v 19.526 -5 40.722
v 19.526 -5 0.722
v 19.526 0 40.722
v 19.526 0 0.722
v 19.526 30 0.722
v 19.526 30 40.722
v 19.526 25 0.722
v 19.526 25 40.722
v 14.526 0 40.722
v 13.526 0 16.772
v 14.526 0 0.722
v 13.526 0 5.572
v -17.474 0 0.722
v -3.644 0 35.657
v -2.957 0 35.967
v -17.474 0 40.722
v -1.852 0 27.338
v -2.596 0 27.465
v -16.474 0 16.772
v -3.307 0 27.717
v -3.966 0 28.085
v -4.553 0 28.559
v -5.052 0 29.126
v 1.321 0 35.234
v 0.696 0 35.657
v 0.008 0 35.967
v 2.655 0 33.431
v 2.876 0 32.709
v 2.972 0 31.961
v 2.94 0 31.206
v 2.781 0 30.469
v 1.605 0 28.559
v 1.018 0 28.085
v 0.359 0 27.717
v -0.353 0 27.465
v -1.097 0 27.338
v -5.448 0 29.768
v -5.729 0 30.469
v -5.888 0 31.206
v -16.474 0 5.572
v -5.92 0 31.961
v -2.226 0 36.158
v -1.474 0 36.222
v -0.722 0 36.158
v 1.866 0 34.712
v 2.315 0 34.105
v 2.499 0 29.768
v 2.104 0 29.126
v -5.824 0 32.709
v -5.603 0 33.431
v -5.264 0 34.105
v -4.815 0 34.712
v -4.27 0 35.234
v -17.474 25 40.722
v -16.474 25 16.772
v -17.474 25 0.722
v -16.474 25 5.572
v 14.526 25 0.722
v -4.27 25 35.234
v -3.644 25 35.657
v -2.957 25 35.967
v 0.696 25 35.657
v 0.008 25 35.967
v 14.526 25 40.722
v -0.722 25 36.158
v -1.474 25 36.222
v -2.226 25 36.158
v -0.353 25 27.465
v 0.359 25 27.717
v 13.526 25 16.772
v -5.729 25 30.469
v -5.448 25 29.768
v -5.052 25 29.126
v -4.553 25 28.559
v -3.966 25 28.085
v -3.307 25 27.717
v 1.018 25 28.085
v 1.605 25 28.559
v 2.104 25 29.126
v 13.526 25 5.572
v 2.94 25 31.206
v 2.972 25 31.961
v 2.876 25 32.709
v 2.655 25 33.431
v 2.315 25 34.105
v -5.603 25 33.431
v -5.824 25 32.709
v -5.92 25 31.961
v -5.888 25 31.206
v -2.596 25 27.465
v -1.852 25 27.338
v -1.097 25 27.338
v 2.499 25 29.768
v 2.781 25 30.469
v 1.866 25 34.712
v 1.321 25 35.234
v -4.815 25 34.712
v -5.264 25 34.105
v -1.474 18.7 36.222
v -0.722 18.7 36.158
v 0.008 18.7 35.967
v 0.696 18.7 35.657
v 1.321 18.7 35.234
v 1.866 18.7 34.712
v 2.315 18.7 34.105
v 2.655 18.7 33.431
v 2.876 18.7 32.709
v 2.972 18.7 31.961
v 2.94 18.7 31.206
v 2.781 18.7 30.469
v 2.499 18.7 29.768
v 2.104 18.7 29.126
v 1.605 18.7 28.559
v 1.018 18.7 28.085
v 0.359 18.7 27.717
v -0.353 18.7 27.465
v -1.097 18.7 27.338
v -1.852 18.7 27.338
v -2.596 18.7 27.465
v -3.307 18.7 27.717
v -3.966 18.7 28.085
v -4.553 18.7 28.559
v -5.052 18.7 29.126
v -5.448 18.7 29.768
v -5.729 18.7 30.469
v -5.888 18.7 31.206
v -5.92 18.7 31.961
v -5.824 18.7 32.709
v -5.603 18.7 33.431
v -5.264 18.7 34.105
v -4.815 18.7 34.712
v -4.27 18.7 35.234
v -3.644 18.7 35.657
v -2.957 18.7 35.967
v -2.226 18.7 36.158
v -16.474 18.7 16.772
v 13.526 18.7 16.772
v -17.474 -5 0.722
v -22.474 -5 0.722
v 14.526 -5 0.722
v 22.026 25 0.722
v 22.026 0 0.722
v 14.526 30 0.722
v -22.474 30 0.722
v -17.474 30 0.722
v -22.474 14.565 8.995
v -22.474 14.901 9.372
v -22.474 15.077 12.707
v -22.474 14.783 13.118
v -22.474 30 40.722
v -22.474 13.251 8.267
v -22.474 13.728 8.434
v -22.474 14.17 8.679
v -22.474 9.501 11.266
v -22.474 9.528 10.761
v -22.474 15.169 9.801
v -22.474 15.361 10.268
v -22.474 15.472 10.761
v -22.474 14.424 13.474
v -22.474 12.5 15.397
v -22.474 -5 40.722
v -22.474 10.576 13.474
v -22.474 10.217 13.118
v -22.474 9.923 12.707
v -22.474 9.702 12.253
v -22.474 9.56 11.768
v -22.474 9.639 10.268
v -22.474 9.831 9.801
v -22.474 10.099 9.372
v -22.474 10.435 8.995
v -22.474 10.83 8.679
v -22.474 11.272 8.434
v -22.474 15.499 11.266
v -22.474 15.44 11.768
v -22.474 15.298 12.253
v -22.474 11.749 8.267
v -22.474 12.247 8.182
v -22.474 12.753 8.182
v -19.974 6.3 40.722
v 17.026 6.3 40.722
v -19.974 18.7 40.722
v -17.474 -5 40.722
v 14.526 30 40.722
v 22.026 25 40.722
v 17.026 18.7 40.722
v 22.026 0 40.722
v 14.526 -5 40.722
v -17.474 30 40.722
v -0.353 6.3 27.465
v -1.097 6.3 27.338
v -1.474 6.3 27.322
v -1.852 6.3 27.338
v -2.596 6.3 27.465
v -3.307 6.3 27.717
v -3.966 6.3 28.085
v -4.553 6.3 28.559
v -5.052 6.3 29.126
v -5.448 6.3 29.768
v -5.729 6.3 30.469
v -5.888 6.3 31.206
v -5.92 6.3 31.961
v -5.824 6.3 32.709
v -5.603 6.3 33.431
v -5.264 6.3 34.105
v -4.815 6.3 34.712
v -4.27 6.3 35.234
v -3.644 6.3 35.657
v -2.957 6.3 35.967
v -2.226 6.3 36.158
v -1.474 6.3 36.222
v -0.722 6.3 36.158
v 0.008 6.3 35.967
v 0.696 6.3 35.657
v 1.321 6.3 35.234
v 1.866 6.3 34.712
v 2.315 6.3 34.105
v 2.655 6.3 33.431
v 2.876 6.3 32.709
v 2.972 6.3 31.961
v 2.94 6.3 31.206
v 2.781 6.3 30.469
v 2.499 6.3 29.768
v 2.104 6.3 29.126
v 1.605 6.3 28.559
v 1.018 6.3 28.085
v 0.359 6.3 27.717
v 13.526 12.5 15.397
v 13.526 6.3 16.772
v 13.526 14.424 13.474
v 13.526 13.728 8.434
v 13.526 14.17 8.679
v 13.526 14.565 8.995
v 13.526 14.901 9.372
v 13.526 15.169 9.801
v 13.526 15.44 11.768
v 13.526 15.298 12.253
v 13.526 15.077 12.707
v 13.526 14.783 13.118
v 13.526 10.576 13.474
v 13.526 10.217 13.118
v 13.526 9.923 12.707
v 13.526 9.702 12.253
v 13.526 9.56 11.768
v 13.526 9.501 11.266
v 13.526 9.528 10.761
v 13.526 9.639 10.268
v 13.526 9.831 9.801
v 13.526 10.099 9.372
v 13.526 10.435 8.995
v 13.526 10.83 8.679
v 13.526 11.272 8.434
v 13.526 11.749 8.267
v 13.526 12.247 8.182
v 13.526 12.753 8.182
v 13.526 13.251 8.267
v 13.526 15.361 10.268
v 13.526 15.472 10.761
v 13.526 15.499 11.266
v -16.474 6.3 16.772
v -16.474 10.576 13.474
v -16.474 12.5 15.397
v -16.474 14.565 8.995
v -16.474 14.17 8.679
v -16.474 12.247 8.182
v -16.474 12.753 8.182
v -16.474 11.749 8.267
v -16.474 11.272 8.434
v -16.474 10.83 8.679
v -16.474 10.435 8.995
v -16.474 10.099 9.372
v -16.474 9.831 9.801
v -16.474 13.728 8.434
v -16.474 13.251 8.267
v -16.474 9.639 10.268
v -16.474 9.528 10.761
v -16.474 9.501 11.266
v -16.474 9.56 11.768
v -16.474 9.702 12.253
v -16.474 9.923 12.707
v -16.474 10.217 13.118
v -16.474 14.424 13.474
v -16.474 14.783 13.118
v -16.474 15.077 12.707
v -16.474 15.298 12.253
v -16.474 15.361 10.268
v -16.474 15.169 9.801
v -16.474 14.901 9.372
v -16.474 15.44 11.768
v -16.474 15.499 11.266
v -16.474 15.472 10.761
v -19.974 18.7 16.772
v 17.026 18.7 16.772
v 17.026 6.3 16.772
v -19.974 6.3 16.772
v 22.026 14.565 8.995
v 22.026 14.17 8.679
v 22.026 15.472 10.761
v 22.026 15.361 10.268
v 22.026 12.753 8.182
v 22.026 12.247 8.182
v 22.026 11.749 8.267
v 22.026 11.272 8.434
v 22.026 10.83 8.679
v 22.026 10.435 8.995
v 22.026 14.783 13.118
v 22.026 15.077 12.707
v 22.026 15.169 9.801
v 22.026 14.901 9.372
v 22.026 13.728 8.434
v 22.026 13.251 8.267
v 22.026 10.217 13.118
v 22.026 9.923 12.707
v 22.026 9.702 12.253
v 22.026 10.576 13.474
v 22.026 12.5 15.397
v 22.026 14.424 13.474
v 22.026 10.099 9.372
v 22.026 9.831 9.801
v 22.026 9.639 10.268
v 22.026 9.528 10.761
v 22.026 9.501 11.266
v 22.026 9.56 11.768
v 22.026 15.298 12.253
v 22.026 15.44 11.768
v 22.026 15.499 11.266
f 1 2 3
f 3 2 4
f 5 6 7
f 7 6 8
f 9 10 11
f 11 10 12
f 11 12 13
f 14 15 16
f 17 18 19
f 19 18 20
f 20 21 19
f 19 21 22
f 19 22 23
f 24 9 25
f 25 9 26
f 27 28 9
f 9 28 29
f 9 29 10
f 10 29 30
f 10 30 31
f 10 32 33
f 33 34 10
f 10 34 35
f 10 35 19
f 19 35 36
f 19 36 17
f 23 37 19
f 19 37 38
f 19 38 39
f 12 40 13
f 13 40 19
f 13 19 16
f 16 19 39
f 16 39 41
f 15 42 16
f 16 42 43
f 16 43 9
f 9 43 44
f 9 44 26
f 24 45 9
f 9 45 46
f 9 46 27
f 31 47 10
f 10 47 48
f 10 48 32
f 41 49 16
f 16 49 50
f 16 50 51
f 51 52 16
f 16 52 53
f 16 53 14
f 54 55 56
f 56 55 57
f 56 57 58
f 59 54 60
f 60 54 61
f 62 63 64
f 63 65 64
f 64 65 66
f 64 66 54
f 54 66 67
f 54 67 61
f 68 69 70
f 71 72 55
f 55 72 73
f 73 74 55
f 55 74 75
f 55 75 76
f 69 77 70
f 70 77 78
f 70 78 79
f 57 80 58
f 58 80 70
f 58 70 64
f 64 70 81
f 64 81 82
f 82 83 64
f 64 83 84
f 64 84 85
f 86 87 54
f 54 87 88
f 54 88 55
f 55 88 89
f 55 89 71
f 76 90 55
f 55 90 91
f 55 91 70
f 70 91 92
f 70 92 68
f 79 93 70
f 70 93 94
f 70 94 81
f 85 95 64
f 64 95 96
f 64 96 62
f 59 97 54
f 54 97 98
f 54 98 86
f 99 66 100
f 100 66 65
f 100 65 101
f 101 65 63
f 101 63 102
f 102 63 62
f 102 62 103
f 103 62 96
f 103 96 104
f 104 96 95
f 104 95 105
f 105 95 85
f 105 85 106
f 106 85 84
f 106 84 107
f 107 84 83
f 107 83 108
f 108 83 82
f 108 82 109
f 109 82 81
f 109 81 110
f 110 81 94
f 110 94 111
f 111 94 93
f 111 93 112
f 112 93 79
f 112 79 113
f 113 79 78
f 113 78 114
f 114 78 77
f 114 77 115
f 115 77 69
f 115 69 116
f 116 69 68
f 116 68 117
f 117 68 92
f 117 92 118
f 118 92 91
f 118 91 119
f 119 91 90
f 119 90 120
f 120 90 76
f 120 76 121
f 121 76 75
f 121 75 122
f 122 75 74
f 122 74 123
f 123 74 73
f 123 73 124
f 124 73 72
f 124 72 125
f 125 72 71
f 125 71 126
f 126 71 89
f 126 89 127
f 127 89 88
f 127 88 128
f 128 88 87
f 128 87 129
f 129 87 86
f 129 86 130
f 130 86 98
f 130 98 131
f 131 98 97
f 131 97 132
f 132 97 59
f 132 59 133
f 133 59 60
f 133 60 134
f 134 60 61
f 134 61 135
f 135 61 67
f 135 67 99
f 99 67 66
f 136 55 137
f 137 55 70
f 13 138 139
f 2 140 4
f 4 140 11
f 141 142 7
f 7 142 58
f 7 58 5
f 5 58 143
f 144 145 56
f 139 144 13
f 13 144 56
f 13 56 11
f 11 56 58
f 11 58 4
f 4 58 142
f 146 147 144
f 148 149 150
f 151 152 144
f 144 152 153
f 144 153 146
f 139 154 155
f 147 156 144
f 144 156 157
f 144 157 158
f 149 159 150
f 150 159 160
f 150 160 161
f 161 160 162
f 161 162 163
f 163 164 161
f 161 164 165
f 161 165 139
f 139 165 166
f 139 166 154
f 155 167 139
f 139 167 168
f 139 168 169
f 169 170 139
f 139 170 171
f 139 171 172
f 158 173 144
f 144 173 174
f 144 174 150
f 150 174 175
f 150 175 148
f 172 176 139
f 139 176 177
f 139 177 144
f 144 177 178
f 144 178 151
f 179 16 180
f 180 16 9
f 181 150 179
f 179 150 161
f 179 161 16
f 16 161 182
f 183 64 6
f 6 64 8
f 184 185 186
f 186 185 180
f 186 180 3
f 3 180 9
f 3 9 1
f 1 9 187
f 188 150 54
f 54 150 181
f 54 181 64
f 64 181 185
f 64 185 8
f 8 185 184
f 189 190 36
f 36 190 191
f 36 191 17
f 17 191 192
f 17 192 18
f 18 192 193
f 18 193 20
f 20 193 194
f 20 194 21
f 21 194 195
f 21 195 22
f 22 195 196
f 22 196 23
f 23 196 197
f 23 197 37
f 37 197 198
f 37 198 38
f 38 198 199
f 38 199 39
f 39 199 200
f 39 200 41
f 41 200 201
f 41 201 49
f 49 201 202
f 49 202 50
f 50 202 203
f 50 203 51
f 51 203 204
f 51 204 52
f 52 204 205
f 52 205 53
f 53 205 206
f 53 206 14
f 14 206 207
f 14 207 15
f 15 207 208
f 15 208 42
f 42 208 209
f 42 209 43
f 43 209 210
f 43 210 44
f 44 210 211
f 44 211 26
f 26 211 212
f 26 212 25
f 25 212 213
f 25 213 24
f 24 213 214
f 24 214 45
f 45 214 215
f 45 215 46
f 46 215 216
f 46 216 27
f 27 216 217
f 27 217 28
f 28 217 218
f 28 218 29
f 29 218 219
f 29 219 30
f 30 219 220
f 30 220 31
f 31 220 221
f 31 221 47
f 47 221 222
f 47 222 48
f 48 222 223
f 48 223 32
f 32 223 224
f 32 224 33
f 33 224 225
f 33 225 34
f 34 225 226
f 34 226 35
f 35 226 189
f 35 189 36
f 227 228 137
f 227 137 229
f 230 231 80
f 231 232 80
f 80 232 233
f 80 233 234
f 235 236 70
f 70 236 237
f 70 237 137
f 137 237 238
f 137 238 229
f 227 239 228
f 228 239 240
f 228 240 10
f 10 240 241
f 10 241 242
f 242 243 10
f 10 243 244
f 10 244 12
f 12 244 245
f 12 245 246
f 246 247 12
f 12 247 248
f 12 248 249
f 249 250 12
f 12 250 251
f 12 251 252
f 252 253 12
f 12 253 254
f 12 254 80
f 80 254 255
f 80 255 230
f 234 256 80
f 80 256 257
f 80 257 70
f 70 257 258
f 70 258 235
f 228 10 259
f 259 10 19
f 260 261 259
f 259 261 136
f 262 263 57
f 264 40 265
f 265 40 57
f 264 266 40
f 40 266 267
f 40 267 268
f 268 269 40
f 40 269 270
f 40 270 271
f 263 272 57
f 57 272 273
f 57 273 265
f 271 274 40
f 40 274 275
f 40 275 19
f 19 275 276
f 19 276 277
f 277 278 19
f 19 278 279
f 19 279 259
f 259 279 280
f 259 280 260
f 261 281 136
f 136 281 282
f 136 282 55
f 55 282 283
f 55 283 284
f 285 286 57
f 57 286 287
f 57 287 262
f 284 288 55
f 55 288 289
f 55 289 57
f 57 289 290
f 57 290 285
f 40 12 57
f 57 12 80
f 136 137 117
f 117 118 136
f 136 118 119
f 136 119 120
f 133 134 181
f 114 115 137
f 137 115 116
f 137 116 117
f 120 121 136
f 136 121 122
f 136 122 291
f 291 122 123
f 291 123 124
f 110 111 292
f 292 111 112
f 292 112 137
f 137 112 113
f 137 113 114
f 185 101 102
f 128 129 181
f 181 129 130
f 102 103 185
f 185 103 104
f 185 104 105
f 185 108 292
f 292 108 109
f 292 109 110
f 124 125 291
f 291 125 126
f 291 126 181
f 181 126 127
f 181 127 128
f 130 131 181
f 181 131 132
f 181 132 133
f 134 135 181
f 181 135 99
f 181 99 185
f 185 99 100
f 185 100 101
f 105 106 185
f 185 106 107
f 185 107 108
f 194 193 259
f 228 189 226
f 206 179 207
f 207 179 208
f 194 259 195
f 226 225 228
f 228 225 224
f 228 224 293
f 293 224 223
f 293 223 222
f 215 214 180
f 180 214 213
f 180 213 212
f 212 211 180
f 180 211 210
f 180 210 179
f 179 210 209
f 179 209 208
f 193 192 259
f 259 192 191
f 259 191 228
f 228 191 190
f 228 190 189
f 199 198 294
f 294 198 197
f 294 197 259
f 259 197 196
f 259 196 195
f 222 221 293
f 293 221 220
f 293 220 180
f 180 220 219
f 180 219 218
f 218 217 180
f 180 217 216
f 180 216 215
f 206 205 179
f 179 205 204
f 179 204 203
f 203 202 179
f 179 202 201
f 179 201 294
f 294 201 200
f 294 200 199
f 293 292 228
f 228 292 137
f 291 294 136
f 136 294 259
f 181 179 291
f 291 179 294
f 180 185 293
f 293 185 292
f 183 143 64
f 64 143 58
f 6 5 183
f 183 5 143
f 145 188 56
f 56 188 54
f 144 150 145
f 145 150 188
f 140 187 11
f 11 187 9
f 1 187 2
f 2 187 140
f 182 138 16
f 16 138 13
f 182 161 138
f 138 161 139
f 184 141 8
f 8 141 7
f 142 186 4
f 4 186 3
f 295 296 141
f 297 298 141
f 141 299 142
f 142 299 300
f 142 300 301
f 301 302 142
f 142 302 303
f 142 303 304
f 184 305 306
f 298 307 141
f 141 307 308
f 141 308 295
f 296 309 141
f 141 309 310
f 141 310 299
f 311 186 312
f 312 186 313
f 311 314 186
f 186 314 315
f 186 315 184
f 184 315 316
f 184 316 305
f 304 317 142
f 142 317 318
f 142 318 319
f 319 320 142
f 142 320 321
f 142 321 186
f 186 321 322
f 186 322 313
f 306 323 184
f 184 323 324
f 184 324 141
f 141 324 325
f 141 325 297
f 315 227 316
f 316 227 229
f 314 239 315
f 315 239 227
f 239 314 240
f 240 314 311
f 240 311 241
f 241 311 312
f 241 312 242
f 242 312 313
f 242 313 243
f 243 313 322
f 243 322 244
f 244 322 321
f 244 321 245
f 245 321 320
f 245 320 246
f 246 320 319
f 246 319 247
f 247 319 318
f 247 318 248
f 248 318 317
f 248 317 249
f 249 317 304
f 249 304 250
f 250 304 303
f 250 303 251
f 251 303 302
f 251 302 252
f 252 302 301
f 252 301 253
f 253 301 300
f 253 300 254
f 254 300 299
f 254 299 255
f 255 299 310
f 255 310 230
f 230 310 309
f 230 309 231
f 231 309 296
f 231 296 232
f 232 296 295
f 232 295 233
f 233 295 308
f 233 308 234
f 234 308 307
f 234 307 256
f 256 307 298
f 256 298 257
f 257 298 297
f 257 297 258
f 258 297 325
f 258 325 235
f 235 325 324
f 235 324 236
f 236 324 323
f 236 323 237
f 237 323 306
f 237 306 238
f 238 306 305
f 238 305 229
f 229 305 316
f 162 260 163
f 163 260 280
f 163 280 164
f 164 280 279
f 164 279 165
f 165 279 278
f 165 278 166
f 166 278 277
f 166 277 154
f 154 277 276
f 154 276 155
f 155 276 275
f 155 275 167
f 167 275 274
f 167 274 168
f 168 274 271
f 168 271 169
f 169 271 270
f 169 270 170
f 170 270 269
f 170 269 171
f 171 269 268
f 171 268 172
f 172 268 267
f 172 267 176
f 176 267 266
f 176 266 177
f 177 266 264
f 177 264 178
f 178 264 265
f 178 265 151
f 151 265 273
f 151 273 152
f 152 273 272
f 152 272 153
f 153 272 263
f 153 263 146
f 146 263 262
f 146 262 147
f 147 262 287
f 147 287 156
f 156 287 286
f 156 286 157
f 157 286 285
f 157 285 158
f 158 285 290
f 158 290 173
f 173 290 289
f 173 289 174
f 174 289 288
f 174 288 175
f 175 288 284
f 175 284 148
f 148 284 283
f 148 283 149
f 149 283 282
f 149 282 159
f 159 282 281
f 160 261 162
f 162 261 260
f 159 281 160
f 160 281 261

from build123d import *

# Parameters (mm, degrees)
SKETCH1_W               = 42
SKETCH1_H               = 40
BOSS_EXTRUDE1_DEPTH     = 25
SKETCH2_R               = 4.45
SKETCH2_W               = 30
SKETCH2_H               = 11.2
CUT_EXTRUDE1_DEPTH      = 25
SKETCH5_W               = 37
SKETCH5_H               = 12.4
CUT_EXTRUDE3_DEPTH      = 23.95
SKETCH7_W               = 5
SKETCH7_H               = 40
BOSS_EXTRUDE2_DEPTH     = 5
SKETCH8_W               = 5
SKETCH8_H               = 40
BOSS_EXTRUDE3_DEPTH     = 5
SKETCH10_W              = 40
SKETCH10_H              = 25
BOSS_EXTRUDE4_DEPTH     = 2.5
CUT_EXTRUDE2_DEPTH      = 66.743841816
CUT_EXTRUDE2_DEPTH_BACK = 66.743841816


with BuildPart() as part:
    # Sketch1 → Boss-Extrude1 (new body)
    with BuildSketch(Plane(origin=(0, 0, 0), x_dir=(-1, 0, 0), z_dir=(0, 1, 0))):
        with Locations((1.474226804, 20.721649485)):
            Rectangle(SKETCH1_W, SKETCH1_H)
    extrude(amount=BOSS_EXTRUDE1_DEPTH)

    # Sketch2 → Cut-Extrude1 (cut)
    with BuildSketch(Plane(origin=(0, 25, 0), x_dir=(-1, 0, 0), z_dir=(0, 1, 0))):
        with Locations(Location((1.474226804, 31.771649485, 0), (0, 0, 90))):
            Circle(SKETCH2_R)
        with Locations((1.474226804, 11.171649485)):
            Rectangle(SKETCH2_W, SKETCH2_H)
    extrude(amount=-CUT_EXTRUDE1_DEPTH, mode=Mode.SUBTRACT)

    # Sketch5 → Cut-Extrude3 (cut)
    with BuildSketch(Plane.XY.offset(40.721649485)):
        with Locations((-1.474226804, 12.5)):
            Rectangle(SKETCH5_W, SKETCH5_H)
    extrude(amount=-CUT_EXTRUDE3_DEPTH, mode=Mode.SUBTRACT)

    # Sketch7 → Boss-Extrude2 (add)
    with BuildSketch(Plane(origin=(0, 25, 0), x_dir=(-1, 0, 0), z_dir=(0, 1, 0))):
        with Locations((19.974226804, 20.721649485)):
            Rectangle(SKETCH7_W, SKETCH7_H)
        with Locations((-17.025773196, 20.721649485)):
            Rectangle(SKETCH7_W, SKETCH7_H)
    extrude(amount=BOSS_EXTRUDE2_DEPTH)

    # Sketch8 → Boss-Extrude3 (add)
    with BuildSketch(Plane.XZ):
        with Locations((-19.974226804, 20.721649485)):
            Rectangle(SKETCH8_W, SKETCH8_H)
        with Locations((17.025773196, 20.721649485)):
            Rectangle(SKETCH8_W, SKETCH8_H)
    extrude(amount=BOSS_EXTRUDE3_DEPTH)

    # Sketch10 → Boss-Extrude4 (add)
    with BuildSketch(Plane(origin=(19.525773196, 0, 0), x_dir=(0, 0, -1), z_dir=(1, 0, 0))):
        with Locations((-20.721649485, 12.5)):
            Rectangle(SKETCH10_W, SKETCH10_H)
    extrude(amount=BOSS_EXTRUDE4_DEPTH)

    # Sketch3 → Cut-Extrude2 (cut, two sides: drawn at the far end of the back side and taken through both)
    with BuildSketch(Plane.YZ.offset(19.525773196).offset(-CUT_EXTRUDE2_DEPTH_BACK)):
        with BuildLine():
            Line((14.423560576, 13.473803847), (12.5, 15.397364423))
            Line((12.5, 15.397364423), (10.576439424, 13.473803847))
            ThreePointArc((10.576439424, 13.473803847), (12.5, 8.171649485), (14.423560576, 13.473803847))
        make_face()
    extrude(amount=CUT_EXTRUDE2_DEPTH + CUT_EXTRUDE2_DEPTH_BACK, mode=Mode.SUBTRACT)


solid = part.part
